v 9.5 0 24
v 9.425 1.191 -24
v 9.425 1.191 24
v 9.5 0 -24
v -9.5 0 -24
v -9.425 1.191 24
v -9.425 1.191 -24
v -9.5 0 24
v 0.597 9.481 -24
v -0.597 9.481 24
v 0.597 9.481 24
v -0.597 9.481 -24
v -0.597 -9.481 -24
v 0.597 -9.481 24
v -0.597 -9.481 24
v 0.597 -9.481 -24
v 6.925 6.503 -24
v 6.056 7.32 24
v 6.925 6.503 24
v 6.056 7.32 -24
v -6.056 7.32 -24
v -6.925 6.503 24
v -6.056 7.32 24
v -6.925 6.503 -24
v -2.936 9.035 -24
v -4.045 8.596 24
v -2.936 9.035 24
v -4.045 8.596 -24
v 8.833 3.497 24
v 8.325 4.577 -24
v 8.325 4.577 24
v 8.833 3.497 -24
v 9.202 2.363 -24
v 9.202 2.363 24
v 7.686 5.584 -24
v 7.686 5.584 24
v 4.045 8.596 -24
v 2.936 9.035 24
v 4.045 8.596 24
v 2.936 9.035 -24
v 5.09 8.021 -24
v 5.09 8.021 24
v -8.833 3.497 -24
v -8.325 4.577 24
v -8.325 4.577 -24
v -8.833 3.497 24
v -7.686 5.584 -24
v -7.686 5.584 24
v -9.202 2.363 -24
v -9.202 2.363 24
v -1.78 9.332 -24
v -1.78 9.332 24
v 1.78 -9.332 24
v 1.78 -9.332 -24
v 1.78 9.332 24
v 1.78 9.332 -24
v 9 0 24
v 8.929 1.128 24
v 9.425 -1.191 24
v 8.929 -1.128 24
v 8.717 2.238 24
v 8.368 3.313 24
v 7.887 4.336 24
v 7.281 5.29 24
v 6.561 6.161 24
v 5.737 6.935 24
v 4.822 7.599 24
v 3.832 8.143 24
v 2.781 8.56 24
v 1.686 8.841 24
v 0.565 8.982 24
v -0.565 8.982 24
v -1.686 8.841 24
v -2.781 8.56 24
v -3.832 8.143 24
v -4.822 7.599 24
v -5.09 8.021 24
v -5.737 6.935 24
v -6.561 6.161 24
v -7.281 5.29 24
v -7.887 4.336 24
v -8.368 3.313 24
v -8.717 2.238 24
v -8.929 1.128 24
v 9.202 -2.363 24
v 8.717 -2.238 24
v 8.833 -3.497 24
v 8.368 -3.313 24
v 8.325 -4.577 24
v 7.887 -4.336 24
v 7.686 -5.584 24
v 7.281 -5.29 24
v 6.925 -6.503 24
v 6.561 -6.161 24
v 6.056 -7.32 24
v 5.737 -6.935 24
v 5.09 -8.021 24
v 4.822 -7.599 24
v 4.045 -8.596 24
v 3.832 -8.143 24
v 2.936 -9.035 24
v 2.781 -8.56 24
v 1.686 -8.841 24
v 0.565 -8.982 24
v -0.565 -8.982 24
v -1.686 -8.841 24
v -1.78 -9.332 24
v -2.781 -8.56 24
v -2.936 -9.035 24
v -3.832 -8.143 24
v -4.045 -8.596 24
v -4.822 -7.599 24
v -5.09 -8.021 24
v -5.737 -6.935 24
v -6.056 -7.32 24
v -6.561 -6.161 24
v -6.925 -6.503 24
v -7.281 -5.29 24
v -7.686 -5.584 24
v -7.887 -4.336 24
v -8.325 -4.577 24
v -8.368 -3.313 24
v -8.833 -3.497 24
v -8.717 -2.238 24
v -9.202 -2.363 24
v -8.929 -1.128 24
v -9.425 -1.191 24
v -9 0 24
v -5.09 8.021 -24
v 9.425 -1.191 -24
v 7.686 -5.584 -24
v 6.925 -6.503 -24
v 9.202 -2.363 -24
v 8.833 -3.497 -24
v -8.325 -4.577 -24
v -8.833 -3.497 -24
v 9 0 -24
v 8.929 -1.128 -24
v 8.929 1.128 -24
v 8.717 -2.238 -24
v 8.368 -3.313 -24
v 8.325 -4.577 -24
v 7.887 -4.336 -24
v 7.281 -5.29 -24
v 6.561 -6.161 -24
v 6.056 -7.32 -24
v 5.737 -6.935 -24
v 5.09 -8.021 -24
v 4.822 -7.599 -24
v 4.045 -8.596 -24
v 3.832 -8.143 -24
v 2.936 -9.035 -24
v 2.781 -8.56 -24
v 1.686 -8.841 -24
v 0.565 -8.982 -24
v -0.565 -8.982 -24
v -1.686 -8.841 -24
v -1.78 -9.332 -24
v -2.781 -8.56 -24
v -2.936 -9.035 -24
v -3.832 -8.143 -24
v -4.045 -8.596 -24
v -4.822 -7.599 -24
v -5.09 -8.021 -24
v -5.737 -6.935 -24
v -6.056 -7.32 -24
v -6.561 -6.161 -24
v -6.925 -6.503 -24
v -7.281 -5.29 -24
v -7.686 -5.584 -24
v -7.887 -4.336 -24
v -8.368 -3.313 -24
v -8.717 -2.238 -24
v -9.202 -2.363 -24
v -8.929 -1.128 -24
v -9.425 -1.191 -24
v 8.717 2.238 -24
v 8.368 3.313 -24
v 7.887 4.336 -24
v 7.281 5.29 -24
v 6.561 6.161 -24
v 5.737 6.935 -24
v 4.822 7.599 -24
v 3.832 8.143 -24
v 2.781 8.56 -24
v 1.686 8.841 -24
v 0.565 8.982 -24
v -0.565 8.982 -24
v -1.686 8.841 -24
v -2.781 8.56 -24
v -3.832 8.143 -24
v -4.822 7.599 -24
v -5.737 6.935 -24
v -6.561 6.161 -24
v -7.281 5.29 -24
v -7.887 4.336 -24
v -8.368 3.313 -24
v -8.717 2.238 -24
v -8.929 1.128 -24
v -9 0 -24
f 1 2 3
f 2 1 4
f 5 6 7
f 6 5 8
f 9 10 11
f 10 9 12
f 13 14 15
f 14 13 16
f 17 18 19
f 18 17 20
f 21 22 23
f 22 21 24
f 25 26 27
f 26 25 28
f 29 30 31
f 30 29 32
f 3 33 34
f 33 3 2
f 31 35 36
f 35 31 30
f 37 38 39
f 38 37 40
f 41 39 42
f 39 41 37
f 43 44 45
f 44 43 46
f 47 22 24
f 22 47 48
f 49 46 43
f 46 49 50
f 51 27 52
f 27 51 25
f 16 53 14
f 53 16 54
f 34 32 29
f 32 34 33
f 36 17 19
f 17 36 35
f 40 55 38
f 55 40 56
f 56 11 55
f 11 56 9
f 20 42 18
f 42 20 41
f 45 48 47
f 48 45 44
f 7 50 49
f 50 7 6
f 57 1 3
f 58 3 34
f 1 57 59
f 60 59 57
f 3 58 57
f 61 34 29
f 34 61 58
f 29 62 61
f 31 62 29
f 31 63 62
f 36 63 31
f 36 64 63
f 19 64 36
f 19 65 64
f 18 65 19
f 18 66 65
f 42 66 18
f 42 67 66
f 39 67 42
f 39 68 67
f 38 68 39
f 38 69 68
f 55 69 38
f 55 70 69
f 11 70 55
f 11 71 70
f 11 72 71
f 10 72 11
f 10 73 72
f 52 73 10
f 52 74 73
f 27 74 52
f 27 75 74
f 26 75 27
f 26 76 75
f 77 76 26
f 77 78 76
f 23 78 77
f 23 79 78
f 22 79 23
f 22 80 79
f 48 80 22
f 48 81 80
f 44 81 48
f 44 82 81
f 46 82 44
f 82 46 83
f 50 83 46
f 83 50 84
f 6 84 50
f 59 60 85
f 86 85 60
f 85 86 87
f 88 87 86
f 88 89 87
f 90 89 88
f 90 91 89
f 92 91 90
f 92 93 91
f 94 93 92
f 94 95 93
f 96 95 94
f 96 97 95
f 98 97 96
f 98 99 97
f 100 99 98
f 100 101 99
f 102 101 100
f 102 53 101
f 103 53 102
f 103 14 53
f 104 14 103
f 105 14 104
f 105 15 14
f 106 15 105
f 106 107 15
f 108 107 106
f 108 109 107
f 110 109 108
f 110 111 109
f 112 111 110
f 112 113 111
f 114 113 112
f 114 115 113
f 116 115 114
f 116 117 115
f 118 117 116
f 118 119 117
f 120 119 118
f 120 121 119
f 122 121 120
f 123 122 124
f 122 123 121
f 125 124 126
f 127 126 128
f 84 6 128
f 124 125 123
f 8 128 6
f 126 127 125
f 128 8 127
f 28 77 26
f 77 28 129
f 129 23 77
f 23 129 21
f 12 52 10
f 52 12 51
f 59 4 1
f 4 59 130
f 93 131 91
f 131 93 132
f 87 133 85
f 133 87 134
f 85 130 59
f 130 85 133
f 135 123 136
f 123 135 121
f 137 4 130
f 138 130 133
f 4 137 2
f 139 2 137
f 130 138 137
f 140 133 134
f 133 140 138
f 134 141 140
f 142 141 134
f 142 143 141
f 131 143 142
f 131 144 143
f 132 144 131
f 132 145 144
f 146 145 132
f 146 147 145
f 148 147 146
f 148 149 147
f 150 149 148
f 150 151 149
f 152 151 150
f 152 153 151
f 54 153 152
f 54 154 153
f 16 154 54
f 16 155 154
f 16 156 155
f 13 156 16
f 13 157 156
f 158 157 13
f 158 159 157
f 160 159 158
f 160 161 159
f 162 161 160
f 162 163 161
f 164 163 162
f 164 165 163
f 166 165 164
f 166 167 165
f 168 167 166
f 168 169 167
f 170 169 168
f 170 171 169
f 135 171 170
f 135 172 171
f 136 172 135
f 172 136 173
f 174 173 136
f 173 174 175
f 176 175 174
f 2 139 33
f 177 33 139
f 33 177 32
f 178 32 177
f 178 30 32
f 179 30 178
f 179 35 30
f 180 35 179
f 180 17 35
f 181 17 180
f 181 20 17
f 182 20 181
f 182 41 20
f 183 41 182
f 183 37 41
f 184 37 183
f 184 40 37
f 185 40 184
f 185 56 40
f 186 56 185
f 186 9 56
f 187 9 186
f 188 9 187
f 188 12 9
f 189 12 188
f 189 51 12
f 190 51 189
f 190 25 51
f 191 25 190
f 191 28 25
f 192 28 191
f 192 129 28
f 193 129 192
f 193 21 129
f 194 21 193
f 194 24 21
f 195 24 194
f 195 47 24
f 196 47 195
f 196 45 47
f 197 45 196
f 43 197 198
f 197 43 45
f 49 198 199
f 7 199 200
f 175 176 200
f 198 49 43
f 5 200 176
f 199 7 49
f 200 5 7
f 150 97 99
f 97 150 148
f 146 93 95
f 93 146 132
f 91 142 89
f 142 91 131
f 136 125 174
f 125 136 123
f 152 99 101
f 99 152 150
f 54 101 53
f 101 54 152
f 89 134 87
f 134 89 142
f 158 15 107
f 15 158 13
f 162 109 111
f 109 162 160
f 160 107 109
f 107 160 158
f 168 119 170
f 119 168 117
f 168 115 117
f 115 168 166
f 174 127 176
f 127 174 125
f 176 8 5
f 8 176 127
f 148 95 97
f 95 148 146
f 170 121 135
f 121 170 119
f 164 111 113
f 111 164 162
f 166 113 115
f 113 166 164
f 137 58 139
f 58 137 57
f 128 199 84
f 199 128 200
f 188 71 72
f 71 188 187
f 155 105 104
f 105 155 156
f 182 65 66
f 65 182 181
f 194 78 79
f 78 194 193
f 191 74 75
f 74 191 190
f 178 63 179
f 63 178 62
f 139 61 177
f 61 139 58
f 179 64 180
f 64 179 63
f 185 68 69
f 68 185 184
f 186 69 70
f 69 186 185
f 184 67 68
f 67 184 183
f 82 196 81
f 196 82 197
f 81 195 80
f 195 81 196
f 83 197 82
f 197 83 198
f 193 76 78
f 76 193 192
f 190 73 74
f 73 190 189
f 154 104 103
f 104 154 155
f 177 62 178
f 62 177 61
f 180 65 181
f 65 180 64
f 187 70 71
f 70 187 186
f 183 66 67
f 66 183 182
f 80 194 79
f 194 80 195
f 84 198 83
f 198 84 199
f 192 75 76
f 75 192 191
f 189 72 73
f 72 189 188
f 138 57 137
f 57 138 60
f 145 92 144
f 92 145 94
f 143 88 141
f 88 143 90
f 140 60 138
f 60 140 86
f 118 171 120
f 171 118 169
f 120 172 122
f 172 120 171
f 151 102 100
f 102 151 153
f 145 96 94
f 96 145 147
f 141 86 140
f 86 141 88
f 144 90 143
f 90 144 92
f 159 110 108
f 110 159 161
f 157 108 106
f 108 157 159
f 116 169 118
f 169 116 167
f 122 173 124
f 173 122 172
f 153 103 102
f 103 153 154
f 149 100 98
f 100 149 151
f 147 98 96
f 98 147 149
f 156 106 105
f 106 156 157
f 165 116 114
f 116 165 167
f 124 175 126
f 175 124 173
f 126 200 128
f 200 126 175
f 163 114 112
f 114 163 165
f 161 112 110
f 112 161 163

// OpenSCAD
$fn = 50;


difference() {
	union() {
		translate(v = [0, 0, -24.0000000000]) {
			cylinder(h = 48, r = 9.5000000000);
		}
	}
	union() {
		translate(v = [0, 0, -100.0000000000]) {
			cylinder(h = 200, r = 9);
		}
	}
}
